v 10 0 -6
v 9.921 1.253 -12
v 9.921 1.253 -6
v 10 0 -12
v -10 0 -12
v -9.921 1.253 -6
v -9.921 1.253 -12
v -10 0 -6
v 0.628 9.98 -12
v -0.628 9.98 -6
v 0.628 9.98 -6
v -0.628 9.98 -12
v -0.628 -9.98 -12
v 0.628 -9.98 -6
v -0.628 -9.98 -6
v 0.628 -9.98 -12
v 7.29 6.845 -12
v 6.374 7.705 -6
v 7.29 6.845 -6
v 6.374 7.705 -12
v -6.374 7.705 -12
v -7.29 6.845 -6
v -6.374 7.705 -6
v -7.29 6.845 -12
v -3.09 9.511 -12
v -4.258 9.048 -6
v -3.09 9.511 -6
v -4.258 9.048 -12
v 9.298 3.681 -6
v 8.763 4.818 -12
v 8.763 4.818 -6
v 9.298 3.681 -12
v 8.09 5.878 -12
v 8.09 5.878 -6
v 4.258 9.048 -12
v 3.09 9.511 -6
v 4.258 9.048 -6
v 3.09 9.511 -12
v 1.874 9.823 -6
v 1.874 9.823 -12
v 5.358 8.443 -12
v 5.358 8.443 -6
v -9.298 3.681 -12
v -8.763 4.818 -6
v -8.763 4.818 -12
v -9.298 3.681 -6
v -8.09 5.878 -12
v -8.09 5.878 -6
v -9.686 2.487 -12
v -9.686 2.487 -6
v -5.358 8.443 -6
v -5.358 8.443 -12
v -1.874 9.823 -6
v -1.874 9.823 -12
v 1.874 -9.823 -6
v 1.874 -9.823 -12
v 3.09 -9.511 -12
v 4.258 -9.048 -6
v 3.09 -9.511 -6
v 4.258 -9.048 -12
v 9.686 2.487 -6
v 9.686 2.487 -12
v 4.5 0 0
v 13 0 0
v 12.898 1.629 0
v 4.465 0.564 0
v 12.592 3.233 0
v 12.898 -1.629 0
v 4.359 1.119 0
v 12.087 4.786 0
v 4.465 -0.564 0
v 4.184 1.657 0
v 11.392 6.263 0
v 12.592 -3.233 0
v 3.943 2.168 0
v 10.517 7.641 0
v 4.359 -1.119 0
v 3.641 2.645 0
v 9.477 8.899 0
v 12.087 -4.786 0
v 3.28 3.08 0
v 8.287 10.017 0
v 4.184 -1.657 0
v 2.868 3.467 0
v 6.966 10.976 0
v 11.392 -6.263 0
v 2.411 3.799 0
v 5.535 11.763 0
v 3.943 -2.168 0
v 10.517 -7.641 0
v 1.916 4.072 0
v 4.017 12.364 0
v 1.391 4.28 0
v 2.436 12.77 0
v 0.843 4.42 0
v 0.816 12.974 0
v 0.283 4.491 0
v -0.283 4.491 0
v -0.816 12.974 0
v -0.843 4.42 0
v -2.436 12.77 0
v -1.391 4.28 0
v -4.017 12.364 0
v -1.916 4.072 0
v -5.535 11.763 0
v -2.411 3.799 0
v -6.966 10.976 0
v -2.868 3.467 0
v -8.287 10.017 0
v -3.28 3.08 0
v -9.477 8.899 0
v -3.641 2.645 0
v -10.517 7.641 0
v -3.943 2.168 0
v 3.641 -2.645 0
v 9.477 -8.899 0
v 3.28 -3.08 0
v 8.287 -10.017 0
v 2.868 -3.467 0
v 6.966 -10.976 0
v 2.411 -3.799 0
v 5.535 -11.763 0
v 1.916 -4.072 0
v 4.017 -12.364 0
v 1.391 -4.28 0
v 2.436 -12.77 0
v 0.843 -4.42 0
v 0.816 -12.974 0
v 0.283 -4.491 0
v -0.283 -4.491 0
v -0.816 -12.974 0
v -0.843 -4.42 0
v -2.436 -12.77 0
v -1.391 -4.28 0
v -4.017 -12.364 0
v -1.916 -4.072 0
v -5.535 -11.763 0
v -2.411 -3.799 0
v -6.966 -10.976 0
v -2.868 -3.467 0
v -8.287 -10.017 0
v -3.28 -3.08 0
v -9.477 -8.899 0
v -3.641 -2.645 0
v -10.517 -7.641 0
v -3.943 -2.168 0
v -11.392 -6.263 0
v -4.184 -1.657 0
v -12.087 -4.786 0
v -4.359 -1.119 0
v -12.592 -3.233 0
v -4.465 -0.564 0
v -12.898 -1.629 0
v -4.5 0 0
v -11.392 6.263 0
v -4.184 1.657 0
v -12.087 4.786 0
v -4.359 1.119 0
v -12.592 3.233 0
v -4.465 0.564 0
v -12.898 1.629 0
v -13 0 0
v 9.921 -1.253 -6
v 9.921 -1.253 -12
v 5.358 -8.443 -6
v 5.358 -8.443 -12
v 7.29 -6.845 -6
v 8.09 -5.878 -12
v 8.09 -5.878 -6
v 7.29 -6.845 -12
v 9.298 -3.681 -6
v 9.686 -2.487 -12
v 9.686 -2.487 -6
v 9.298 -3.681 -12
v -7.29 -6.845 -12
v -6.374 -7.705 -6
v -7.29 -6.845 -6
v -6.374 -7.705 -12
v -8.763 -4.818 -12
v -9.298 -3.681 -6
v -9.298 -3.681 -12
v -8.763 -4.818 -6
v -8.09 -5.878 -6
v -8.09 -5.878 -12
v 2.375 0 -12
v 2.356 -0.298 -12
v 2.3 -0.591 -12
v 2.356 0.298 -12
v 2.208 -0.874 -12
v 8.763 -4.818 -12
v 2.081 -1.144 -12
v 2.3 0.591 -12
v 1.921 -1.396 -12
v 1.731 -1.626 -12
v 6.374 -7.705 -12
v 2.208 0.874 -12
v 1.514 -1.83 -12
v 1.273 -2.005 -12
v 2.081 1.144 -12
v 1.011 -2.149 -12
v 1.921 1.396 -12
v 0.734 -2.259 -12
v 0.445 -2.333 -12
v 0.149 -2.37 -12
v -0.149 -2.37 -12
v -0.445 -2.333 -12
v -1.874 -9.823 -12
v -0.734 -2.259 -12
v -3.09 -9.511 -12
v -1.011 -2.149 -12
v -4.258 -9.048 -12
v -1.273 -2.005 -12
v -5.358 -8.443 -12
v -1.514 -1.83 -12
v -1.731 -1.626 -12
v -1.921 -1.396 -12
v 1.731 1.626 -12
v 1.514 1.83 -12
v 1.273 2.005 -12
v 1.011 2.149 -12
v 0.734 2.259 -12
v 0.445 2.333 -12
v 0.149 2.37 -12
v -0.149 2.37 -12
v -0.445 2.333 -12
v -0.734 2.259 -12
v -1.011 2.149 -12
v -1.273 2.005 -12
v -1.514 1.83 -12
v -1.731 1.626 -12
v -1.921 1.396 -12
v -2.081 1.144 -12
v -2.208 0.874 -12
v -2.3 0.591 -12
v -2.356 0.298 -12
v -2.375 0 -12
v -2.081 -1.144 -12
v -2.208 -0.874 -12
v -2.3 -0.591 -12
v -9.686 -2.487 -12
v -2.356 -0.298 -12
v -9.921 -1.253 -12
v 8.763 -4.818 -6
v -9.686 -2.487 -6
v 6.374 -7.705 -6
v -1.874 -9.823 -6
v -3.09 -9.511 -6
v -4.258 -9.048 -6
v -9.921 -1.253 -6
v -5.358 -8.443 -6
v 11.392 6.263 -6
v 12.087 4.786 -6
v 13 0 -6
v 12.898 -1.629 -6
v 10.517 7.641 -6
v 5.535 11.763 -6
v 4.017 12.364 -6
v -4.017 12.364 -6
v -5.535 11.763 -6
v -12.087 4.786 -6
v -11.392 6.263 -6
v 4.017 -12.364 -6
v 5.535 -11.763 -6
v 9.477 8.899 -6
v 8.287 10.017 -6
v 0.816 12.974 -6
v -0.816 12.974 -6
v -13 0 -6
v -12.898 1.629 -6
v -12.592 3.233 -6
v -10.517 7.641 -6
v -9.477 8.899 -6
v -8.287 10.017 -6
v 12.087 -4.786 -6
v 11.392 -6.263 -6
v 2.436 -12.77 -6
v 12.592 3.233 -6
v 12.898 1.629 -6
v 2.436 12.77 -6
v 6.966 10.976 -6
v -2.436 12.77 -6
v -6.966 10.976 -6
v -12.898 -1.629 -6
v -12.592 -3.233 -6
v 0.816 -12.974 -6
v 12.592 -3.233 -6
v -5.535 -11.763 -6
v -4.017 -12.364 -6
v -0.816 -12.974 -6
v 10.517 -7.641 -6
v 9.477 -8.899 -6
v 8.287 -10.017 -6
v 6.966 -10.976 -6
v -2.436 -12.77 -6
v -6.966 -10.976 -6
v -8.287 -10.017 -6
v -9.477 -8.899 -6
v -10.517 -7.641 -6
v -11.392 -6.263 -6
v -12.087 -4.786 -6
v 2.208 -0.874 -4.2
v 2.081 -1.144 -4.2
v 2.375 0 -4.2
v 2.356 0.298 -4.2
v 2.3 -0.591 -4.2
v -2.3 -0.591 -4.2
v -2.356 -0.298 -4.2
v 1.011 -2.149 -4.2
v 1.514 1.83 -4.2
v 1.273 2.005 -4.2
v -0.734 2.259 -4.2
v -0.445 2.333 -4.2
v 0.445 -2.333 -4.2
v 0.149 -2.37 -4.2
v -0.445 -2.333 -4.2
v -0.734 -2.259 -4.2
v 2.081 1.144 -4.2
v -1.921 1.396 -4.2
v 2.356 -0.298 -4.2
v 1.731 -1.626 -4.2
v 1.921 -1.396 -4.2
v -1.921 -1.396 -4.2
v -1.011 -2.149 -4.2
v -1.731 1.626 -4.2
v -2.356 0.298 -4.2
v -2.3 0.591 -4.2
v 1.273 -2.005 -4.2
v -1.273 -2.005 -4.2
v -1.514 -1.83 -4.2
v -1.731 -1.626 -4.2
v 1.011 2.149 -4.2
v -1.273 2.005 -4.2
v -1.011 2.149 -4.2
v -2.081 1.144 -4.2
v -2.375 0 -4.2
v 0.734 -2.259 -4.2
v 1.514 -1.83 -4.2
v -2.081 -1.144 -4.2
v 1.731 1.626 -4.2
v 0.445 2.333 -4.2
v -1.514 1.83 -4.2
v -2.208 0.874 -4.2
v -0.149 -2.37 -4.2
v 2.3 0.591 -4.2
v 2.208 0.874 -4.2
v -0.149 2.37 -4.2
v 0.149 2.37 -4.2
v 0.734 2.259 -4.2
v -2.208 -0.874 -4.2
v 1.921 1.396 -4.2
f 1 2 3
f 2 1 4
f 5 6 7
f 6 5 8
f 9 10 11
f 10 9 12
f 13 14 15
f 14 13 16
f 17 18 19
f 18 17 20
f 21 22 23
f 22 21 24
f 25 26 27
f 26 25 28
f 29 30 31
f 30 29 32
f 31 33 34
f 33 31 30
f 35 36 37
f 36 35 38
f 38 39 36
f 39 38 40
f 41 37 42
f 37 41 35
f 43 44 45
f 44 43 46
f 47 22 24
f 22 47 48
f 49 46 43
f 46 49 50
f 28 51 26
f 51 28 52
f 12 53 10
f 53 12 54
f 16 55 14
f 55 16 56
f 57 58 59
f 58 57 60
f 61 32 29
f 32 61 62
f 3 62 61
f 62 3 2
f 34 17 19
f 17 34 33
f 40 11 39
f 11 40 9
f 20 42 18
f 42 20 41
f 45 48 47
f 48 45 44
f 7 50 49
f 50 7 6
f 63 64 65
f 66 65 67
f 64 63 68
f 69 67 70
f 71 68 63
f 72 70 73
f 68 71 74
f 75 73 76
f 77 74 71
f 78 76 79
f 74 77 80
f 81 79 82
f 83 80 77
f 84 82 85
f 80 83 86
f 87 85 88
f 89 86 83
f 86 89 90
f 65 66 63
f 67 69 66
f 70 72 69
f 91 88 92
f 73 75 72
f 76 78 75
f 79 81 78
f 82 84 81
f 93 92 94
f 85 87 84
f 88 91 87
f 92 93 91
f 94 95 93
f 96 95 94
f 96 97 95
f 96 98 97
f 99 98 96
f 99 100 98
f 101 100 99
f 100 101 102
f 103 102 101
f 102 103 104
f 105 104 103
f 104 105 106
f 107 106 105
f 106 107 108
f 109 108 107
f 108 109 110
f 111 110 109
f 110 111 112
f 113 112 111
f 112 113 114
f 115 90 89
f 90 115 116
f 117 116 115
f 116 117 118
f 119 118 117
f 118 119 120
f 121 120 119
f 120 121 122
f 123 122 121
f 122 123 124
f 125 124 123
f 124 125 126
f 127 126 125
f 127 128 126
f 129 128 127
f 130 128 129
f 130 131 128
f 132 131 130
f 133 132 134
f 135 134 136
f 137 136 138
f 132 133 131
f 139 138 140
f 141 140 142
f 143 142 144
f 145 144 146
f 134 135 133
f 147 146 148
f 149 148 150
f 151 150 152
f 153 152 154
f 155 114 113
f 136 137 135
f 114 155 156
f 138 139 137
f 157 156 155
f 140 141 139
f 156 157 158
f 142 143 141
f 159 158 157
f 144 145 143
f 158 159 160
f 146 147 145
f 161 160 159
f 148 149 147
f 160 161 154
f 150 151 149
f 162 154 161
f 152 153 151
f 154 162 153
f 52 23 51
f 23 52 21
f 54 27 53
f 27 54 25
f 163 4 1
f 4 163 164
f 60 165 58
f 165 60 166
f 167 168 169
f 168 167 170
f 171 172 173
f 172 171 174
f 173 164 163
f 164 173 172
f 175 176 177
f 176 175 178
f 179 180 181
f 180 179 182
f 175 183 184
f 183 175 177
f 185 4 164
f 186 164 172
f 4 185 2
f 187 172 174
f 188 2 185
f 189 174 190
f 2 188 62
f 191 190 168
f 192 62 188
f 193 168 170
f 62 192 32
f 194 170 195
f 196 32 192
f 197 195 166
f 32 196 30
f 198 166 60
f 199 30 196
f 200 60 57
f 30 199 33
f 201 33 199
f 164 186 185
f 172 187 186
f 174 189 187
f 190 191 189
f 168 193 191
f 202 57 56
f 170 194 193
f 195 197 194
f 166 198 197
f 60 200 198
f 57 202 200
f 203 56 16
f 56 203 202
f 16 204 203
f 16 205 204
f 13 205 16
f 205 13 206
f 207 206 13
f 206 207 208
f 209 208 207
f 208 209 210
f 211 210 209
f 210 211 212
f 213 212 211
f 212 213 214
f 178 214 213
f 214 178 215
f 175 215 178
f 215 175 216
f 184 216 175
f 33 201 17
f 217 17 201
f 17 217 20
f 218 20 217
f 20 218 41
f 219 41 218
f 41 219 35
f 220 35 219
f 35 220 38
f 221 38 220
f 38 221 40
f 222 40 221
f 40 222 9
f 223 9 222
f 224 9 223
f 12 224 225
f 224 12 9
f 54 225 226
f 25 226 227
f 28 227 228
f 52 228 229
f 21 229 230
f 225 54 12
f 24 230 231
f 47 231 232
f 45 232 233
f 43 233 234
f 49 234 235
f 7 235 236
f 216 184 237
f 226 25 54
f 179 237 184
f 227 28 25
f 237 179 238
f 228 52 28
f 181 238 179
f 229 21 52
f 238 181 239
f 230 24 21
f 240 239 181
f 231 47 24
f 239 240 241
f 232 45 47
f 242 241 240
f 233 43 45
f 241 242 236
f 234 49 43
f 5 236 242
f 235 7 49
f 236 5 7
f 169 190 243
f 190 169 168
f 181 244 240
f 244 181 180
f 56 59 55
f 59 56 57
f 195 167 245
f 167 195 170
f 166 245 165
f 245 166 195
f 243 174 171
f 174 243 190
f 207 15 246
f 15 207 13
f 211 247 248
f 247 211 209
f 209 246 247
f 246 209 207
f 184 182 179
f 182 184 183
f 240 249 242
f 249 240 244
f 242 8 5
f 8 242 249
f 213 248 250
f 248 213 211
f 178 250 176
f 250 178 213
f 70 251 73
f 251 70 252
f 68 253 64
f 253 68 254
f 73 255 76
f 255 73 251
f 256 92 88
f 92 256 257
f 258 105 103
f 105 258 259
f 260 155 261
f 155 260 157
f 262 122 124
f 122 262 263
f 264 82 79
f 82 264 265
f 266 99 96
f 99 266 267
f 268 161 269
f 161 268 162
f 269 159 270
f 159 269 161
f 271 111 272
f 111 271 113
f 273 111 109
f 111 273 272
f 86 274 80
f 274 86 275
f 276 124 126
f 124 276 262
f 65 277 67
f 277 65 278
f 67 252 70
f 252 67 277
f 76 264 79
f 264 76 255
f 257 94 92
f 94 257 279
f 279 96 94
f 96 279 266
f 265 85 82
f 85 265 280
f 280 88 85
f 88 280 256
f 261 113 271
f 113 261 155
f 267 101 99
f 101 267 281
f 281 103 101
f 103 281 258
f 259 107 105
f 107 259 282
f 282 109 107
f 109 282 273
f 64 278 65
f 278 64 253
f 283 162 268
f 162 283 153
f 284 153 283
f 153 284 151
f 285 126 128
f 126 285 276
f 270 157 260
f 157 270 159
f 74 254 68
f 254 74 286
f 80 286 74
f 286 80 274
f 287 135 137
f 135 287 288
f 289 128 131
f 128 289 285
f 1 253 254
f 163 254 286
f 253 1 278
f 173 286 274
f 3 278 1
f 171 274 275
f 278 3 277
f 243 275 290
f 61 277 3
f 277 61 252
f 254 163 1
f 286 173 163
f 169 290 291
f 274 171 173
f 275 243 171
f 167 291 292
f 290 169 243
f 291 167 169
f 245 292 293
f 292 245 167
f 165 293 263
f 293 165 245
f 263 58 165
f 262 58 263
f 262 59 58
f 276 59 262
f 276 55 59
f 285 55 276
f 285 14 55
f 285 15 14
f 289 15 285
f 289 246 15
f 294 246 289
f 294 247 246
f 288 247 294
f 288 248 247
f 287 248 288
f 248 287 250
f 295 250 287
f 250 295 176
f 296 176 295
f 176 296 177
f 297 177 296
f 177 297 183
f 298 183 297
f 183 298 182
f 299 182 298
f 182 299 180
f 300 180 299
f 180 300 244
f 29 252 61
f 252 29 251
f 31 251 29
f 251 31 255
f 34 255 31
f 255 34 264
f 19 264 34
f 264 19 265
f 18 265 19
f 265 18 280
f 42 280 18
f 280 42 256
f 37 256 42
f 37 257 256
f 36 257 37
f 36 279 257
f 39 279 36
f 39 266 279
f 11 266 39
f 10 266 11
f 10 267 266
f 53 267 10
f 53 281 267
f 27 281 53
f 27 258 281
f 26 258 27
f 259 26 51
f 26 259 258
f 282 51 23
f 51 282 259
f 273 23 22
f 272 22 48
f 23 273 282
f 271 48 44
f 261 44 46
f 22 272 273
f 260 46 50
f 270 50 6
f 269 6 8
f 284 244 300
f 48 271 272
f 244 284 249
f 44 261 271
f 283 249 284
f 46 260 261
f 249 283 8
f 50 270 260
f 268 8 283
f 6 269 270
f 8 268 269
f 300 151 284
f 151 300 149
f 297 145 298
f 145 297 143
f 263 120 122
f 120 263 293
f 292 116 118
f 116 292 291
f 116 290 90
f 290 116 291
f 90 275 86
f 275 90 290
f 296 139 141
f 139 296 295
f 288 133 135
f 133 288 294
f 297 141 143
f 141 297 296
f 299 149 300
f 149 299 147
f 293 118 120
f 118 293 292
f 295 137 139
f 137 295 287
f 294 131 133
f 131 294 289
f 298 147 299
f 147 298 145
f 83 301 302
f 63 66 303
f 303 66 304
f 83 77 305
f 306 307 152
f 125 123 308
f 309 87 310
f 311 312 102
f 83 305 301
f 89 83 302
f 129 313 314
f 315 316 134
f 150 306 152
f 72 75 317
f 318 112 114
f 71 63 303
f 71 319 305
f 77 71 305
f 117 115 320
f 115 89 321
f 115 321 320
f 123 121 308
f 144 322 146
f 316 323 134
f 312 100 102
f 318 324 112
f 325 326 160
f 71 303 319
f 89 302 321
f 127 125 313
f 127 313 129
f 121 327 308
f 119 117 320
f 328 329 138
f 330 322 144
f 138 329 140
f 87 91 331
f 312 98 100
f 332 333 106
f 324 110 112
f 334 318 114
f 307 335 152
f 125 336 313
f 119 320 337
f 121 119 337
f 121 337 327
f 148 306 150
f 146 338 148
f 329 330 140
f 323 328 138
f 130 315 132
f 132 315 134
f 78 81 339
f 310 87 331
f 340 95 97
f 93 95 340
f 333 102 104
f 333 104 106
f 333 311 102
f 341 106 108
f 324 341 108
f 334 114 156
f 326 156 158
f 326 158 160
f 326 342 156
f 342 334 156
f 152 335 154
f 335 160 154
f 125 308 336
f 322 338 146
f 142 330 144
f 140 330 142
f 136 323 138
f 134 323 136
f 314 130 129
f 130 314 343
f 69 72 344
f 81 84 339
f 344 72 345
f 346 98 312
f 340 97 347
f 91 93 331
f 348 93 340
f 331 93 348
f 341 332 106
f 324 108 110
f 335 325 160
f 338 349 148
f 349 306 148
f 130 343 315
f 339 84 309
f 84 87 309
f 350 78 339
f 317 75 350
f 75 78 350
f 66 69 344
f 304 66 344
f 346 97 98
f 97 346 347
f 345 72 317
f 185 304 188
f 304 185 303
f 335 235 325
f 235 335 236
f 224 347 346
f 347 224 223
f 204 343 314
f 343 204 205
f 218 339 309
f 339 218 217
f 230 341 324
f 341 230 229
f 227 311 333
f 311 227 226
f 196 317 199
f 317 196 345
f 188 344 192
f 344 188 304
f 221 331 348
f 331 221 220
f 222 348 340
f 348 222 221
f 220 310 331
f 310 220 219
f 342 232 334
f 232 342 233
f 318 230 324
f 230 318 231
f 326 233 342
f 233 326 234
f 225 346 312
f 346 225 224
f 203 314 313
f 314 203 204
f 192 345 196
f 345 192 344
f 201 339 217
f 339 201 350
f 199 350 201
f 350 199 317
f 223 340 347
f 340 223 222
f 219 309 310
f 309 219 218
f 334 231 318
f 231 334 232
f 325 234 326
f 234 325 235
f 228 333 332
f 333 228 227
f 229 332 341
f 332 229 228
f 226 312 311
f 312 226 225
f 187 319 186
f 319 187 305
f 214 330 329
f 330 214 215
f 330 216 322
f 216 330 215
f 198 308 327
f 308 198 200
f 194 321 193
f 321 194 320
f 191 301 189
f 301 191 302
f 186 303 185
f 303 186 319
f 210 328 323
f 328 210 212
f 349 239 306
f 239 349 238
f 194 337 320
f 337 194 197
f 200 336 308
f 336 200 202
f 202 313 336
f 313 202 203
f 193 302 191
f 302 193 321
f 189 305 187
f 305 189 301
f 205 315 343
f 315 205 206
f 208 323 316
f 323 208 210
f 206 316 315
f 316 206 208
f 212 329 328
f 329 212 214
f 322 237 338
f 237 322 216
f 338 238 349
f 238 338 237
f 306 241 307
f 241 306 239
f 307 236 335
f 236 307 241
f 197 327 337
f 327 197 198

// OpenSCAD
$fn = 50;


difference() {
	union() {
		translate(v = [0, 0, -12.0000000000]) {
			cylinder(h = 12, r = 10.0000000000);
		}
		translate(v = [0, 0, -6.0000000000]) {
			cylinder(h = 6, r = 13.0000000000);
		}
	}
	union() {
		translate(v = [0, 0, 0]) {
			rotate(a = [0, 0, 0]) {
				difference() {
					union() {
						#translate(v = [0, 0, -12.0000000000]) {
							cylinder(h = 12, r = 2.2500000000);
						}
						#translate(v = [0, 0, -4.2000000000]) {
							cylinder(h = 4.2000000000, r1 = 2.3750000000, r2 = 4.5000000000);
						}
						#translate(v = [0, 0, -12.0000000000]) {
							cylinder(h = 12, r = 2.3750000000);
						}
						#translate(v = [0, 0, -12.0000000000]) {
							cylinder(h = 12, r = 2.2500000000);
						}
					}
					union();
				}
			}
		}
	}
}
